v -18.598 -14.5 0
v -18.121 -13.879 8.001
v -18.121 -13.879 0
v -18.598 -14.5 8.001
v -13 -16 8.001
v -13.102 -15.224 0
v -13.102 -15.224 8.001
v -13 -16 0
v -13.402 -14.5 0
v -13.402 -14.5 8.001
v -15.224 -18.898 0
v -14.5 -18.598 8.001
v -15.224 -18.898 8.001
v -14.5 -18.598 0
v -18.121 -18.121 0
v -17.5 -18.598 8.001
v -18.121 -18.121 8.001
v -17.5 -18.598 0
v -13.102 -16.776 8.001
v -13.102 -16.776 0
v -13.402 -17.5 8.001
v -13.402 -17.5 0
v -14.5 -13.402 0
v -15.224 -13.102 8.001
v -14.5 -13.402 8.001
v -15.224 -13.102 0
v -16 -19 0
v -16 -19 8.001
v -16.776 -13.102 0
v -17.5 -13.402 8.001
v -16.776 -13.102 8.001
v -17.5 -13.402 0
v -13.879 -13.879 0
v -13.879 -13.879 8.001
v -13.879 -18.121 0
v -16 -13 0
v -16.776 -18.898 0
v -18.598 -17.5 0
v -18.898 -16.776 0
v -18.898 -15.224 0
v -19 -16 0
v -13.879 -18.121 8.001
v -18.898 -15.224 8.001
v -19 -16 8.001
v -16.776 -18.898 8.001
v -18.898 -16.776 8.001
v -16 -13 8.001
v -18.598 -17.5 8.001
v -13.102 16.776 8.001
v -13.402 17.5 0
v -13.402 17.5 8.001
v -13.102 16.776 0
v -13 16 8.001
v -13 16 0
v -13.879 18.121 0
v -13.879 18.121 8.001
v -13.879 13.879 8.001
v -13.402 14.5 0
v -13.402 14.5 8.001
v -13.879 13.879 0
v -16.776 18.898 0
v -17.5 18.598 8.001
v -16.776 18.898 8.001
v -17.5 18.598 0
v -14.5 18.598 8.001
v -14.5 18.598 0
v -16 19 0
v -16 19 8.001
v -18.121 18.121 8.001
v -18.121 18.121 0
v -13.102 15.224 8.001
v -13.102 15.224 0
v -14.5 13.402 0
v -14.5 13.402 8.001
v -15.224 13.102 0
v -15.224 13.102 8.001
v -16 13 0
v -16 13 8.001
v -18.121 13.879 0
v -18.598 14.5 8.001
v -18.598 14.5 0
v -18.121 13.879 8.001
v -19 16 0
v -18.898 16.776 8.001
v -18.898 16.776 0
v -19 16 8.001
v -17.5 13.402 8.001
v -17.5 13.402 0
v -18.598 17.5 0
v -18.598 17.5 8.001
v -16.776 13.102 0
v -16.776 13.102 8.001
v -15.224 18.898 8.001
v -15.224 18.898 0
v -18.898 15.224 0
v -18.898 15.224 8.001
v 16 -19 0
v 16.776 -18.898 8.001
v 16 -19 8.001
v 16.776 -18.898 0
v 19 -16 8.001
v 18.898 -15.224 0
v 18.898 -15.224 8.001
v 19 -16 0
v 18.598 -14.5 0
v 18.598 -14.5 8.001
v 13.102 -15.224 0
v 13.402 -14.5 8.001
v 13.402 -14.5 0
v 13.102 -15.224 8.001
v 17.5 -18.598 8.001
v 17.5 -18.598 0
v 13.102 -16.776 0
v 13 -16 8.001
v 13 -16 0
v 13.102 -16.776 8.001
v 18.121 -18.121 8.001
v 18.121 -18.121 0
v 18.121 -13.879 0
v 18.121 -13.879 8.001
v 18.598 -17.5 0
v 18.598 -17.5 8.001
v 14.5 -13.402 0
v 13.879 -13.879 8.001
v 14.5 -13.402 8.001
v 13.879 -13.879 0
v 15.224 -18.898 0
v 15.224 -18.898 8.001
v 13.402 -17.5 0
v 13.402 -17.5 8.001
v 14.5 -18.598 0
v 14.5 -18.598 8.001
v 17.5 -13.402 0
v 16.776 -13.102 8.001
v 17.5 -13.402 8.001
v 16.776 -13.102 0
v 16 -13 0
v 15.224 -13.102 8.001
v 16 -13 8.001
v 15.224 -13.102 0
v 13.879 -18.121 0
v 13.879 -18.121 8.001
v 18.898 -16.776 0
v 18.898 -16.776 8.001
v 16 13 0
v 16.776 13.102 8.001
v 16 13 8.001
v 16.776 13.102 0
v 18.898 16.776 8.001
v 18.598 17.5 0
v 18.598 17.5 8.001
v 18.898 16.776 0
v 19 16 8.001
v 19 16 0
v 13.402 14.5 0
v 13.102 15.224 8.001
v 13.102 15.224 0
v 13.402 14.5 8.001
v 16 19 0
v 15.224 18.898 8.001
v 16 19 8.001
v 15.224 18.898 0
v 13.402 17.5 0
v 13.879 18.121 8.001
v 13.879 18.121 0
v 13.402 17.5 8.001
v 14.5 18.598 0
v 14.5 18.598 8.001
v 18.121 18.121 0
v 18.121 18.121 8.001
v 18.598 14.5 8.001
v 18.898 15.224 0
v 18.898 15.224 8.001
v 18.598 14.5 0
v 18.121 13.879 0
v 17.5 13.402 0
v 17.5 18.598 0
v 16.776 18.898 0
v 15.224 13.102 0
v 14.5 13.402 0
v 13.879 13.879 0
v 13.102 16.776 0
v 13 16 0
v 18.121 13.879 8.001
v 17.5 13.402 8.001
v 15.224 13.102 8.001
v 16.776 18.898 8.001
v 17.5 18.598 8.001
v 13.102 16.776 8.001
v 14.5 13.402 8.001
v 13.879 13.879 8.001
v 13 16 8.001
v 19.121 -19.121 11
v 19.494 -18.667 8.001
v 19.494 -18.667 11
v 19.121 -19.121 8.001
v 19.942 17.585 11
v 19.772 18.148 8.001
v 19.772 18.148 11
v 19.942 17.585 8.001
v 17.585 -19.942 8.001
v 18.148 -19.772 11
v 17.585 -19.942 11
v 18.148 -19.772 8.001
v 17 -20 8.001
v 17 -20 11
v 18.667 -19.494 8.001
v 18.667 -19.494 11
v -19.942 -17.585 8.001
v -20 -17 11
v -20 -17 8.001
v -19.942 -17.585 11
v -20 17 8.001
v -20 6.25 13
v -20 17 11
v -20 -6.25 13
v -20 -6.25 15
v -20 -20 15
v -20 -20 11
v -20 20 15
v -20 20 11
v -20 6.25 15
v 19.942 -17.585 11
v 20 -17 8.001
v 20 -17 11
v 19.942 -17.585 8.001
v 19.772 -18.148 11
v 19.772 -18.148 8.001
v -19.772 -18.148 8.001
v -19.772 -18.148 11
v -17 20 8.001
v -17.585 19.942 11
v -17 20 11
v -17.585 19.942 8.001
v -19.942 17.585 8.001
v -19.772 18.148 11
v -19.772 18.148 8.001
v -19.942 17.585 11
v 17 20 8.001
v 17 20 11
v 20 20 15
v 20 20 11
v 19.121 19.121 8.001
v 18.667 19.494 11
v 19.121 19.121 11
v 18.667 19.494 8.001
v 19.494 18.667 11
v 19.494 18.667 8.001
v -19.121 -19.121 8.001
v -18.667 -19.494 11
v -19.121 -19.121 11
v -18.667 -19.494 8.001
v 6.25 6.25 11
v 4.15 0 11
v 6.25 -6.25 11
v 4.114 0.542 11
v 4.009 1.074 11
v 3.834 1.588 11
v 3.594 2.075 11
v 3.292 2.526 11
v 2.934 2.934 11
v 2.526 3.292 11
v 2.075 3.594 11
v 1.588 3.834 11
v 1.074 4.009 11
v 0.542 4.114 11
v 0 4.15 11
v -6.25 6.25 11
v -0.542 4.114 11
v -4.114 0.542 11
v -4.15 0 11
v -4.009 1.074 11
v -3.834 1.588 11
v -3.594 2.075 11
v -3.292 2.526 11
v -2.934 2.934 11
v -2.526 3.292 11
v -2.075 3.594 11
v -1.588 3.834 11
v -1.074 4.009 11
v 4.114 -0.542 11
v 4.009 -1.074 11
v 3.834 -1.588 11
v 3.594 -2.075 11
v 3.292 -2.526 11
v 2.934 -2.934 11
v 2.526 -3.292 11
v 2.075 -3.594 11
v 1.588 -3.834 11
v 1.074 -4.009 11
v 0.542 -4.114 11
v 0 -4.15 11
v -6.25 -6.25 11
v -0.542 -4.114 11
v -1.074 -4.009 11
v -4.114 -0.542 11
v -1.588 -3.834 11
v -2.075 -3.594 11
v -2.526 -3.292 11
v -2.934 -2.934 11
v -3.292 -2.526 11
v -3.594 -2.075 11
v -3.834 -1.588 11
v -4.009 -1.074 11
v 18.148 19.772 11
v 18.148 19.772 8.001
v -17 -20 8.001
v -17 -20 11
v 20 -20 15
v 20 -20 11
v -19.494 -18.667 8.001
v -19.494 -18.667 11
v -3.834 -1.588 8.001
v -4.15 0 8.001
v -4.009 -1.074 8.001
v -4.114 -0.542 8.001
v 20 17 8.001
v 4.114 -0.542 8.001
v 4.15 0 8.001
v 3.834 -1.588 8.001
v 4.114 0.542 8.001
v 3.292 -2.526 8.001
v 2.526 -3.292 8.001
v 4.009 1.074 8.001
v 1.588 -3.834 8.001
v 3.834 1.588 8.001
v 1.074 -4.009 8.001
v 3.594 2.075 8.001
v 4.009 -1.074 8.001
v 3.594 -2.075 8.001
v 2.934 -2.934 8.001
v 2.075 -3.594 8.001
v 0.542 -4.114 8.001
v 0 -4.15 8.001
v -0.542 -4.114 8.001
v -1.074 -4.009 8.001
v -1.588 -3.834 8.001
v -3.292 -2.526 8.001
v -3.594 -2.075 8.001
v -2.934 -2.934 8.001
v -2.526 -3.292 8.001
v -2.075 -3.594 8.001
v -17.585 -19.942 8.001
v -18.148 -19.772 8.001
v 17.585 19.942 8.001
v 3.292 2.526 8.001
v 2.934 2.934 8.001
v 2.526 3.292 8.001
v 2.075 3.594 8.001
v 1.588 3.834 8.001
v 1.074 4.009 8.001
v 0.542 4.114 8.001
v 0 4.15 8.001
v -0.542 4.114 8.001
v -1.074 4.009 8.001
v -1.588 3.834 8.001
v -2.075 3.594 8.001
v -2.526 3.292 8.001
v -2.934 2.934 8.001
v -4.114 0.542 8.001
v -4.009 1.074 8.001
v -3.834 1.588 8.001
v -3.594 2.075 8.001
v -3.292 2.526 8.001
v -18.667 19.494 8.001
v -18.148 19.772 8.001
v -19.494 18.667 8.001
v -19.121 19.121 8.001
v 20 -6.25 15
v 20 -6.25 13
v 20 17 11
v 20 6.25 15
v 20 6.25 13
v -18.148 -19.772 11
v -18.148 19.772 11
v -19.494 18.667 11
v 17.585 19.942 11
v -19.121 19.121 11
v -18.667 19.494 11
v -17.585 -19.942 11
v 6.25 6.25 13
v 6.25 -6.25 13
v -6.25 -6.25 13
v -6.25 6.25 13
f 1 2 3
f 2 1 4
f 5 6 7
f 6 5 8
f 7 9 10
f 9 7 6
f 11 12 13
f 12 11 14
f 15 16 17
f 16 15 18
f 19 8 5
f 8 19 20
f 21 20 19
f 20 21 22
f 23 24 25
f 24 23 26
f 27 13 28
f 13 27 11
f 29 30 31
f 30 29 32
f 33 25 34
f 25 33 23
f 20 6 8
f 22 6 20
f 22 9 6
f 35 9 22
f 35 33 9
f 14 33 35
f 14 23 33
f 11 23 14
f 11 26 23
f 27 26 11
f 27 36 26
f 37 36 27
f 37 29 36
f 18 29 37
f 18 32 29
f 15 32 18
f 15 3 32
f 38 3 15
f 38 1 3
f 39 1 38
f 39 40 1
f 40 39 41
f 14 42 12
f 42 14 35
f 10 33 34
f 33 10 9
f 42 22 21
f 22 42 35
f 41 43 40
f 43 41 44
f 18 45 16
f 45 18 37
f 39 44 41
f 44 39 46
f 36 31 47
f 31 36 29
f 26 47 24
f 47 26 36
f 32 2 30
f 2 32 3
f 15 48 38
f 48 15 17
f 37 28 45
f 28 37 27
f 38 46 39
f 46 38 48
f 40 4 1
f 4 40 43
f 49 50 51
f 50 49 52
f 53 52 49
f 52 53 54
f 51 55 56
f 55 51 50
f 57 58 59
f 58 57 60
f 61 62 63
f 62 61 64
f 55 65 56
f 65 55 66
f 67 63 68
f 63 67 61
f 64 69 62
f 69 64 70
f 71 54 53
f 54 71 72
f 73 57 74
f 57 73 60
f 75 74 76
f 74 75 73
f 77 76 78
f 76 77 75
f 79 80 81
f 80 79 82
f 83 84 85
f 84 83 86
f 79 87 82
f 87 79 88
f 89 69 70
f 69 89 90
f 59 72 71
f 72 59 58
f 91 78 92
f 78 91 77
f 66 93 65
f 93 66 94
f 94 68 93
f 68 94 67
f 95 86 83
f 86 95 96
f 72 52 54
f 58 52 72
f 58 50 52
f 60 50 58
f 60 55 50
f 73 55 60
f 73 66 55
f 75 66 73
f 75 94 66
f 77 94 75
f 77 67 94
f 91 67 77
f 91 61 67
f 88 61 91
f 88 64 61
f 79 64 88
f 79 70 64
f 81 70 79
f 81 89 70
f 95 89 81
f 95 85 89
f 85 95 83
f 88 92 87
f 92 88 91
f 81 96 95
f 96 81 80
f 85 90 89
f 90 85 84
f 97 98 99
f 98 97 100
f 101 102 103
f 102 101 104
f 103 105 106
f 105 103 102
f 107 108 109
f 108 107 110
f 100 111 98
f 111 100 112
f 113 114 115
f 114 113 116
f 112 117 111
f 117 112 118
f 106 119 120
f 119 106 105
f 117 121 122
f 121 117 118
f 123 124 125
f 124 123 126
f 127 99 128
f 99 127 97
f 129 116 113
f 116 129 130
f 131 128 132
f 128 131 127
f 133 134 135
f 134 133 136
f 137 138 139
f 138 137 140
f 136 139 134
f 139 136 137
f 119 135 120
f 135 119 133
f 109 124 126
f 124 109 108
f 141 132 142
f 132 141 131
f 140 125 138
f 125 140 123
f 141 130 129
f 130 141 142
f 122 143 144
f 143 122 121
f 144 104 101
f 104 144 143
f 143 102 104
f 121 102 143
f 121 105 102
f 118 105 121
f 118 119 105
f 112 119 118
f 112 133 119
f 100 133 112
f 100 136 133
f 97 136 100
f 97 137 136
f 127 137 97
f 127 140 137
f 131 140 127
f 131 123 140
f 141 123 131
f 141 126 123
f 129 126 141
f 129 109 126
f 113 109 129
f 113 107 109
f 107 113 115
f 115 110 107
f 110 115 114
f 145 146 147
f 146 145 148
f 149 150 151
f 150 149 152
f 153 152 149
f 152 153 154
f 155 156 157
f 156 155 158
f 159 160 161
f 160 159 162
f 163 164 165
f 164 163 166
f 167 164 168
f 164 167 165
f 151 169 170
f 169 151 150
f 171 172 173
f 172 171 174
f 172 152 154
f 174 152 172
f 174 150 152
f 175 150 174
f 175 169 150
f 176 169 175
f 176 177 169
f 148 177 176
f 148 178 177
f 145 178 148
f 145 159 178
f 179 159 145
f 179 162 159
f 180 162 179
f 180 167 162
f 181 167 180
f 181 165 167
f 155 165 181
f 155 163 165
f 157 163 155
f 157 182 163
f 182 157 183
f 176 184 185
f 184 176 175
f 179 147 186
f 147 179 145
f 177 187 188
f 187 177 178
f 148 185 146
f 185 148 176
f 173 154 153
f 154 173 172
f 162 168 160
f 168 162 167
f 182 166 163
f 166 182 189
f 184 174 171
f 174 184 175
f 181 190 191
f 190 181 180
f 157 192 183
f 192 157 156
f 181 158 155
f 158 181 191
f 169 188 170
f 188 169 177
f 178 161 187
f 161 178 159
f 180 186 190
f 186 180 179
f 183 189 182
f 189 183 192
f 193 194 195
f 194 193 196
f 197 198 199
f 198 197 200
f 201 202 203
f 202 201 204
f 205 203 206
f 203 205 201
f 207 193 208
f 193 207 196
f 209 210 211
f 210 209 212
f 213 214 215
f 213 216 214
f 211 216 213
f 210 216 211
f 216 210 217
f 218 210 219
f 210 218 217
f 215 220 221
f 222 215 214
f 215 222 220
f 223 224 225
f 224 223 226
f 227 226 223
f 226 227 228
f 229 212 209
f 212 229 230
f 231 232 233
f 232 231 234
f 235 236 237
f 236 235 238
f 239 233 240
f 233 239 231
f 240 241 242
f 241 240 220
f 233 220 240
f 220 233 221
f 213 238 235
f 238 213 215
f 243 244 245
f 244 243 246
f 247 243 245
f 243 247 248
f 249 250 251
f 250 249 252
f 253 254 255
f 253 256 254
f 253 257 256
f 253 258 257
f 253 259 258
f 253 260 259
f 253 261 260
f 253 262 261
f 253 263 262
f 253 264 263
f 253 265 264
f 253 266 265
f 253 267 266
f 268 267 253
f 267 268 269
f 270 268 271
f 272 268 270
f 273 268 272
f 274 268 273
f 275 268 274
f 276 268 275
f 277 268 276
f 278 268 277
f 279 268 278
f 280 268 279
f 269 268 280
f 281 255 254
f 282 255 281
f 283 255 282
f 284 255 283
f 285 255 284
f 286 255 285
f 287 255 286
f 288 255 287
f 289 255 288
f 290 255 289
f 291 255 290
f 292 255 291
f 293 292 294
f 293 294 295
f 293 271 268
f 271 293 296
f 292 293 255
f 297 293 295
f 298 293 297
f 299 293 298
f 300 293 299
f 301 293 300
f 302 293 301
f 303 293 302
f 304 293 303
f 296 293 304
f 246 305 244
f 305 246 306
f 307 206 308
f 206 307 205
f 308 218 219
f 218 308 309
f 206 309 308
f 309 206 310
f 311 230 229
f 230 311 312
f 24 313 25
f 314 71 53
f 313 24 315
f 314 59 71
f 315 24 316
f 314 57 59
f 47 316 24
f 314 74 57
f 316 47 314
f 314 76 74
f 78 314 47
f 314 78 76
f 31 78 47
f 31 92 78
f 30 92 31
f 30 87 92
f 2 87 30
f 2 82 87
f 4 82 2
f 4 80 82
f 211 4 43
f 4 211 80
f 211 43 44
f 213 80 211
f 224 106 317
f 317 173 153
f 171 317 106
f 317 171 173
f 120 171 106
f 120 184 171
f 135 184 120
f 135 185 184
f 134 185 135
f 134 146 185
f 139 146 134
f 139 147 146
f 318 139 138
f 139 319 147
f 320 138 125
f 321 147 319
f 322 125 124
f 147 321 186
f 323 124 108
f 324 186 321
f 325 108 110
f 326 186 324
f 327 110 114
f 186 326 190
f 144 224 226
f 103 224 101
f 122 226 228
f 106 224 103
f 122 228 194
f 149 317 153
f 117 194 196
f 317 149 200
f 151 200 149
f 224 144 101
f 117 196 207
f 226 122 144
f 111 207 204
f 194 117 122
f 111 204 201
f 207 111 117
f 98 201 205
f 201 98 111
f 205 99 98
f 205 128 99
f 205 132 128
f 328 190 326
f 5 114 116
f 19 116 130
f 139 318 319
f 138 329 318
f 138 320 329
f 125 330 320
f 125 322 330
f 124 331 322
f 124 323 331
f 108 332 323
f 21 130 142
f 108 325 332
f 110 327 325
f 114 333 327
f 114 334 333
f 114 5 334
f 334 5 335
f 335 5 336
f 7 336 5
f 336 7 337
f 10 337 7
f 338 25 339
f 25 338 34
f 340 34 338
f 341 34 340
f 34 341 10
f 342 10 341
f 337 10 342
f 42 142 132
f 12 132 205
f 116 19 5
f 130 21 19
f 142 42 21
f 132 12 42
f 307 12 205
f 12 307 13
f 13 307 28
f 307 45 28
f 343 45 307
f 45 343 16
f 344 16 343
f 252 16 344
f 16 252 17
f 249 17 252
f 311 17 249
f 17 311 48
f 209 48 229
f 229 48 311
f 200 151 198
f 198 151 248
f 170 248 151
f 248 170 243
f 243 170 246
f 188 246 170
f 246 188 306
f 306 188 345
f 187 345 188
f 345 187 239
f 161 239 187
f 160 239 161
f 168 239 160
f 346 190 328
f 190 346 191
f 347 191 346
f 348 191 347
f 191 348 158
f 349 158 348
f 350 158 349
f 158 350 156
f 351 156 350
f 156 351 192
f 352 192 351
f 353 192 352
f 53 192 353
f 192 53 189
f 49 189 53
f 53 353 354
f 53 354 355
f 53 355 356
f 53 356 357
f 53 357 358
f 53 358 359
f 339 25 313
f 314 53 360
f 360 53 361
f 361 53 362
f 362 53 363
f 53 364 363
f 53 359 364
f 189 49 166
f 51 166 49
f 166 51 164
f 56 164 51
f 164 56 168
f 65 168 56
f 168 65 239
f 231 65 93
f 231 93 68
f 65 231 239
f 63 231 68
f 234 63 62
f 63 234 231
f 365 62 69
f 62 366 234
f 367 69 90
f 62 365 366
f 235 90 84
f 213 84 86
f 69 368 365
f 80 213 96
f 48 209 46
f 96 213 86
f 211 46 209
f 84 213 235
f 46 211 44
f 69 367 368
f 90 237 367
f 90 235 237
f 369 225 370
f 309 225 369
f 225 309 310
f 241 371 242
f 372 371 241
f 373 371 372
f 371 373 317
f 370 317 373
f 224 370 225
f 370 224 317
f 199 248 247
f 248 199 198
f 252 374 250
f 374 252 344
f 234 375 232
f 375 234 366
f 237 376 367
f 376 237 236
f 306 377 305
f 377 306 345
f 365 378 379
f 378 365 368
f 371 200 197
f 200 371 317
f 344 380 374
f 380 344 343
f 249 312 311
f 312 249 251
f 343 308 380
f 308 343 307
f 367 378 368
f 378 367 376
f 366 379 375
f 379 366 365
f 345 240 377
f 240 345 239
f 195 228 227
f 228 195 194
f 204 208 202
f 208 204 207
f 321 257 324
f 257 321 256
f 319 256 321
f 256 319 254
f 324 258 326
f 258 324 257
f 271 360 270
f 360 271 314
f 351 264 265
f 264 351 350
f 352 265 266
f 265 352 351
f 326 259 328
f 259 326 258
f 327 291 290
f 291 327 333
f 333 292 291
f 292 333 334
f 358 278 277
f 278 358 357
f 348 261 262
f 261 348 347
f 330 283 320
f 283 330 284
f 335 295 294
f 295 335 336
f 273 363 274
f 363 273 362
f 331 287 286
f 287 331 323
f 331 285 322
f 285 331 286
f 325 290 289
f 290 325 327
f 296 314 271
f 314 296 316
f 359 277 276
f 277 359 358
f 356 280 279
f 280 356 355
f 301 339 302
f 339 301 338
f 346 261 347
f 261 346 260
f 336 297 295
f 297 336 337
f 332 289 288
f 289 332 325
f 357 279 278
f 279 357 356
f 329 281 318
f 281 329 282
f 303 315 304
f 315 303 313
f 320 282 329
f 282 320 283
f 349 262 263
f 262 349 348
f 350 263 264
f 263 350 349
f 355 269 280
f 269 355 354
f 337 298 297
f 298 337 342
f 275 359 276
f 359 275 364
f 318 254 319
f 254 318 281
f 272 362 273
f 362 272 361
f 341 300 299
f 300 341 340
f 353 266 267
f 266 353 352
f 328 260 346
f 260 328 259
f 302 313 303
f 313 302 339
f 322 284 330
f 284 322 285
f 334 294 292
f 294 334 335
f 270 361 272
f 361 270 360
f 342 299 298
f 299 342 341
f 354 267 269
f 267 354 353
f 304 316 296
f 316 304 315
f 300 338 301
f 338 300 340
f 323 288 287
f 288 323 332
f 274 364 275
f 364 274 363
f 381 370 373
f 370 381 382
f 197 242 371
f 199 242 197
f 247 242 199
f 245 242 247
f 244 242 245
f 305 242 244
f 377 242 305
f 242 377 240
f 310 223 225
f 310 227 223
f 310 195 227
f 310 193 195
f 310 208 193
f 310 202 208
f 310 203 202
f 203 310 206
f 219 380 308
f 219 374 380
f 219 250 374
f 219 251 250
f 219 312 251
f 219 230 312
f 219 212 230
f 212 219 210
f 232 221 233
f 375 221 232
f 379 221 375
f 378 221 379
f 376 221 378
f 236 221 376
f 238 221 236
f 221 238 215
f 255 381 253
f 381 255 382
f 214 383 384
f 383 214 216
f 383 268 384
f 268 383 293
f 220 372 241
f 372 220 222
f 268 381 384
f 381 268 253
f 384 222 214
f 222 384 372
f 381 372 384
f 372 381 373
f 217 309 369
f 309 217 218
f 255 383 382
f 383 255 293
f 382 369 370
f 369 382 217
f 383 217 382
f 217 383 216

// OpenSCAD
// ============================================================
// LED Pin Bending Jig — single 8mm through-hole RGB LED
//
// Usage: insert LED lens-first from above (pins pointing UP).
// The collar/flange rests on the flat board top surface.
// The dome hangs below the board in the leg clearance.
// Bend pins outward against the elevated tabs.
//
// Printer: Bambu Lab A1 Mini
// Print orientation: legs down on bed (same as layer_jig)
// ============================================================

// ============================================================
// PARAMETERS
// ============================================================

// LED body
led_body_d    = 8.0;   // mm — LED cylinder / dome diameter
led_clearance = 0.3;   // mm — hole oversize for smooth insertion
collar_d      = 9.5;   // mm — collar/flange diameter (MEASURE YOUR LED!)
                        //      Must be > hole_d (8.3) or LED will fall through.

// Board (flat plate — same style as layer_jig)
board_w  = 40.0;   // mm — board width  (X)
board_l  = 40.0;   // mm — board length (Y)
board_t  = 3.0;    // mm — board thickness
corner_r = 3.0;    // mm — outer corner radius

// Legs — elevate board to clear the inverted LED dome (~4mm radius)
leg_h = 8.0;   // mm — leg height (> LED dome radius; 8mm gives 4mm margin)
leg_d = 6.0;   // mm — leg diameter

// Bending tabs — one per side, inner face clears the LED collar
tab_gap    = 1.5;   // mm — gap between collar edge and inner tab face
tab_w      = 5.0;   // mm — tab span (perpendicular to outward direction)
tab_l      = 4.0;   // mm — tab depth (outward from hole centre)
tab_h_low  = 2.0;   // mm — height above board top on ±X sides
tab_h_high = 4.0;   // mm — height above board top on ±Y sides

// ============================================================
// DERIVED
// ============================================================
hole_d     = led_body_d + led_clearance;    // 8.3 mm
tab_offset = collar_d / 2 + tab_gap;        // inner face of tab from centre
leg_pos    = board_w / 2 - leg_d / 2 - 1;  // leg centre (inset from corners)
board_z    = leg_h;                          // Z of board bottom face
eps        = 0.01;

// ============================================================
// MODULES
// ============================================================

// One bending wall — runs from tab_offset to the board edge,
// spanning the full board width in the perpendicular direction.
// Rotated into place for each of the four sides.
module bend_tab(h) {
    wall_len = board_w / 2 - tab_offset;   // inner face → board edge
    translate([tab_offset, -board_l / 2, board_z + board_t])
    cube([wall_len, board_l, h]);
}

// ============================================================
// MODEL  —  Z=0 on print bed, board top at Z = leg_h + board_t
// ============================================================

// --- Corner legs (same pattern as layer_jig) ---
for (sx = [-1, 1]) for (sy = [-1, 1]) {
    translate([sx * leg_pos, sy * leg_pos, 0])
    cylinder(d=leg_d, h=leg_h + eps, $fn=24);
}

// --- Board (flat plate elevated on legs) ---
translate([0, 0, board_z])
difference() {
    // Rounded-corner board (minkowski of box + flat cylinder)
    translate([0, 0, board_t / 2])
    minkowski() {
        cube([board_w - 2*corner_r,
              board_l - 2*corner_r,
              board_t - 0.001], center=true);
        cylinder(r=corner_r, h=0.001, $fn=32);
    }

    // LED body through-hole — collar rests on flat top surface,
    // dome hangs below into leg clearance
    translate([0, 0, -eps])
    cylinder(d=hole_d, h=board_t + 2*eps, $fn=48);
}

// --- Bending tabs on board top ---
// Two opposing sides at tab_h_low (2 mm): ±X
for (a = [0, 180]) rotate([0, 0, a]) bend_tab(tab_h_low);

// Two opposing sides at tab_h_high (4 mm): ±Y
for (a = [90, 270]) rotate([0, 0, a]) bend_tab(tab_h_high);

// ============================================================
// KEY DIMENSIONS
// board          : 40 × 40 × 3 mm   (bottom at z=8, top at z=11)
// legs           : ⌀6 mm, 8 mm tall — 4 mm dome clearance below board
// hole_d         : 8.3 mm   (8.0 + 0.3 clearance)
// collar_d       : 9.5 mm   (MEASURE AND ADJUST — must be > 8.3 mm)
// tab inner face : 6.25 mm from centre   (collar edge + 1.5 mm gap)
// low tabs  (±X) : 2 mm above board top
// high tabs (±Y) : 4 mm above board top
// ============================================================
